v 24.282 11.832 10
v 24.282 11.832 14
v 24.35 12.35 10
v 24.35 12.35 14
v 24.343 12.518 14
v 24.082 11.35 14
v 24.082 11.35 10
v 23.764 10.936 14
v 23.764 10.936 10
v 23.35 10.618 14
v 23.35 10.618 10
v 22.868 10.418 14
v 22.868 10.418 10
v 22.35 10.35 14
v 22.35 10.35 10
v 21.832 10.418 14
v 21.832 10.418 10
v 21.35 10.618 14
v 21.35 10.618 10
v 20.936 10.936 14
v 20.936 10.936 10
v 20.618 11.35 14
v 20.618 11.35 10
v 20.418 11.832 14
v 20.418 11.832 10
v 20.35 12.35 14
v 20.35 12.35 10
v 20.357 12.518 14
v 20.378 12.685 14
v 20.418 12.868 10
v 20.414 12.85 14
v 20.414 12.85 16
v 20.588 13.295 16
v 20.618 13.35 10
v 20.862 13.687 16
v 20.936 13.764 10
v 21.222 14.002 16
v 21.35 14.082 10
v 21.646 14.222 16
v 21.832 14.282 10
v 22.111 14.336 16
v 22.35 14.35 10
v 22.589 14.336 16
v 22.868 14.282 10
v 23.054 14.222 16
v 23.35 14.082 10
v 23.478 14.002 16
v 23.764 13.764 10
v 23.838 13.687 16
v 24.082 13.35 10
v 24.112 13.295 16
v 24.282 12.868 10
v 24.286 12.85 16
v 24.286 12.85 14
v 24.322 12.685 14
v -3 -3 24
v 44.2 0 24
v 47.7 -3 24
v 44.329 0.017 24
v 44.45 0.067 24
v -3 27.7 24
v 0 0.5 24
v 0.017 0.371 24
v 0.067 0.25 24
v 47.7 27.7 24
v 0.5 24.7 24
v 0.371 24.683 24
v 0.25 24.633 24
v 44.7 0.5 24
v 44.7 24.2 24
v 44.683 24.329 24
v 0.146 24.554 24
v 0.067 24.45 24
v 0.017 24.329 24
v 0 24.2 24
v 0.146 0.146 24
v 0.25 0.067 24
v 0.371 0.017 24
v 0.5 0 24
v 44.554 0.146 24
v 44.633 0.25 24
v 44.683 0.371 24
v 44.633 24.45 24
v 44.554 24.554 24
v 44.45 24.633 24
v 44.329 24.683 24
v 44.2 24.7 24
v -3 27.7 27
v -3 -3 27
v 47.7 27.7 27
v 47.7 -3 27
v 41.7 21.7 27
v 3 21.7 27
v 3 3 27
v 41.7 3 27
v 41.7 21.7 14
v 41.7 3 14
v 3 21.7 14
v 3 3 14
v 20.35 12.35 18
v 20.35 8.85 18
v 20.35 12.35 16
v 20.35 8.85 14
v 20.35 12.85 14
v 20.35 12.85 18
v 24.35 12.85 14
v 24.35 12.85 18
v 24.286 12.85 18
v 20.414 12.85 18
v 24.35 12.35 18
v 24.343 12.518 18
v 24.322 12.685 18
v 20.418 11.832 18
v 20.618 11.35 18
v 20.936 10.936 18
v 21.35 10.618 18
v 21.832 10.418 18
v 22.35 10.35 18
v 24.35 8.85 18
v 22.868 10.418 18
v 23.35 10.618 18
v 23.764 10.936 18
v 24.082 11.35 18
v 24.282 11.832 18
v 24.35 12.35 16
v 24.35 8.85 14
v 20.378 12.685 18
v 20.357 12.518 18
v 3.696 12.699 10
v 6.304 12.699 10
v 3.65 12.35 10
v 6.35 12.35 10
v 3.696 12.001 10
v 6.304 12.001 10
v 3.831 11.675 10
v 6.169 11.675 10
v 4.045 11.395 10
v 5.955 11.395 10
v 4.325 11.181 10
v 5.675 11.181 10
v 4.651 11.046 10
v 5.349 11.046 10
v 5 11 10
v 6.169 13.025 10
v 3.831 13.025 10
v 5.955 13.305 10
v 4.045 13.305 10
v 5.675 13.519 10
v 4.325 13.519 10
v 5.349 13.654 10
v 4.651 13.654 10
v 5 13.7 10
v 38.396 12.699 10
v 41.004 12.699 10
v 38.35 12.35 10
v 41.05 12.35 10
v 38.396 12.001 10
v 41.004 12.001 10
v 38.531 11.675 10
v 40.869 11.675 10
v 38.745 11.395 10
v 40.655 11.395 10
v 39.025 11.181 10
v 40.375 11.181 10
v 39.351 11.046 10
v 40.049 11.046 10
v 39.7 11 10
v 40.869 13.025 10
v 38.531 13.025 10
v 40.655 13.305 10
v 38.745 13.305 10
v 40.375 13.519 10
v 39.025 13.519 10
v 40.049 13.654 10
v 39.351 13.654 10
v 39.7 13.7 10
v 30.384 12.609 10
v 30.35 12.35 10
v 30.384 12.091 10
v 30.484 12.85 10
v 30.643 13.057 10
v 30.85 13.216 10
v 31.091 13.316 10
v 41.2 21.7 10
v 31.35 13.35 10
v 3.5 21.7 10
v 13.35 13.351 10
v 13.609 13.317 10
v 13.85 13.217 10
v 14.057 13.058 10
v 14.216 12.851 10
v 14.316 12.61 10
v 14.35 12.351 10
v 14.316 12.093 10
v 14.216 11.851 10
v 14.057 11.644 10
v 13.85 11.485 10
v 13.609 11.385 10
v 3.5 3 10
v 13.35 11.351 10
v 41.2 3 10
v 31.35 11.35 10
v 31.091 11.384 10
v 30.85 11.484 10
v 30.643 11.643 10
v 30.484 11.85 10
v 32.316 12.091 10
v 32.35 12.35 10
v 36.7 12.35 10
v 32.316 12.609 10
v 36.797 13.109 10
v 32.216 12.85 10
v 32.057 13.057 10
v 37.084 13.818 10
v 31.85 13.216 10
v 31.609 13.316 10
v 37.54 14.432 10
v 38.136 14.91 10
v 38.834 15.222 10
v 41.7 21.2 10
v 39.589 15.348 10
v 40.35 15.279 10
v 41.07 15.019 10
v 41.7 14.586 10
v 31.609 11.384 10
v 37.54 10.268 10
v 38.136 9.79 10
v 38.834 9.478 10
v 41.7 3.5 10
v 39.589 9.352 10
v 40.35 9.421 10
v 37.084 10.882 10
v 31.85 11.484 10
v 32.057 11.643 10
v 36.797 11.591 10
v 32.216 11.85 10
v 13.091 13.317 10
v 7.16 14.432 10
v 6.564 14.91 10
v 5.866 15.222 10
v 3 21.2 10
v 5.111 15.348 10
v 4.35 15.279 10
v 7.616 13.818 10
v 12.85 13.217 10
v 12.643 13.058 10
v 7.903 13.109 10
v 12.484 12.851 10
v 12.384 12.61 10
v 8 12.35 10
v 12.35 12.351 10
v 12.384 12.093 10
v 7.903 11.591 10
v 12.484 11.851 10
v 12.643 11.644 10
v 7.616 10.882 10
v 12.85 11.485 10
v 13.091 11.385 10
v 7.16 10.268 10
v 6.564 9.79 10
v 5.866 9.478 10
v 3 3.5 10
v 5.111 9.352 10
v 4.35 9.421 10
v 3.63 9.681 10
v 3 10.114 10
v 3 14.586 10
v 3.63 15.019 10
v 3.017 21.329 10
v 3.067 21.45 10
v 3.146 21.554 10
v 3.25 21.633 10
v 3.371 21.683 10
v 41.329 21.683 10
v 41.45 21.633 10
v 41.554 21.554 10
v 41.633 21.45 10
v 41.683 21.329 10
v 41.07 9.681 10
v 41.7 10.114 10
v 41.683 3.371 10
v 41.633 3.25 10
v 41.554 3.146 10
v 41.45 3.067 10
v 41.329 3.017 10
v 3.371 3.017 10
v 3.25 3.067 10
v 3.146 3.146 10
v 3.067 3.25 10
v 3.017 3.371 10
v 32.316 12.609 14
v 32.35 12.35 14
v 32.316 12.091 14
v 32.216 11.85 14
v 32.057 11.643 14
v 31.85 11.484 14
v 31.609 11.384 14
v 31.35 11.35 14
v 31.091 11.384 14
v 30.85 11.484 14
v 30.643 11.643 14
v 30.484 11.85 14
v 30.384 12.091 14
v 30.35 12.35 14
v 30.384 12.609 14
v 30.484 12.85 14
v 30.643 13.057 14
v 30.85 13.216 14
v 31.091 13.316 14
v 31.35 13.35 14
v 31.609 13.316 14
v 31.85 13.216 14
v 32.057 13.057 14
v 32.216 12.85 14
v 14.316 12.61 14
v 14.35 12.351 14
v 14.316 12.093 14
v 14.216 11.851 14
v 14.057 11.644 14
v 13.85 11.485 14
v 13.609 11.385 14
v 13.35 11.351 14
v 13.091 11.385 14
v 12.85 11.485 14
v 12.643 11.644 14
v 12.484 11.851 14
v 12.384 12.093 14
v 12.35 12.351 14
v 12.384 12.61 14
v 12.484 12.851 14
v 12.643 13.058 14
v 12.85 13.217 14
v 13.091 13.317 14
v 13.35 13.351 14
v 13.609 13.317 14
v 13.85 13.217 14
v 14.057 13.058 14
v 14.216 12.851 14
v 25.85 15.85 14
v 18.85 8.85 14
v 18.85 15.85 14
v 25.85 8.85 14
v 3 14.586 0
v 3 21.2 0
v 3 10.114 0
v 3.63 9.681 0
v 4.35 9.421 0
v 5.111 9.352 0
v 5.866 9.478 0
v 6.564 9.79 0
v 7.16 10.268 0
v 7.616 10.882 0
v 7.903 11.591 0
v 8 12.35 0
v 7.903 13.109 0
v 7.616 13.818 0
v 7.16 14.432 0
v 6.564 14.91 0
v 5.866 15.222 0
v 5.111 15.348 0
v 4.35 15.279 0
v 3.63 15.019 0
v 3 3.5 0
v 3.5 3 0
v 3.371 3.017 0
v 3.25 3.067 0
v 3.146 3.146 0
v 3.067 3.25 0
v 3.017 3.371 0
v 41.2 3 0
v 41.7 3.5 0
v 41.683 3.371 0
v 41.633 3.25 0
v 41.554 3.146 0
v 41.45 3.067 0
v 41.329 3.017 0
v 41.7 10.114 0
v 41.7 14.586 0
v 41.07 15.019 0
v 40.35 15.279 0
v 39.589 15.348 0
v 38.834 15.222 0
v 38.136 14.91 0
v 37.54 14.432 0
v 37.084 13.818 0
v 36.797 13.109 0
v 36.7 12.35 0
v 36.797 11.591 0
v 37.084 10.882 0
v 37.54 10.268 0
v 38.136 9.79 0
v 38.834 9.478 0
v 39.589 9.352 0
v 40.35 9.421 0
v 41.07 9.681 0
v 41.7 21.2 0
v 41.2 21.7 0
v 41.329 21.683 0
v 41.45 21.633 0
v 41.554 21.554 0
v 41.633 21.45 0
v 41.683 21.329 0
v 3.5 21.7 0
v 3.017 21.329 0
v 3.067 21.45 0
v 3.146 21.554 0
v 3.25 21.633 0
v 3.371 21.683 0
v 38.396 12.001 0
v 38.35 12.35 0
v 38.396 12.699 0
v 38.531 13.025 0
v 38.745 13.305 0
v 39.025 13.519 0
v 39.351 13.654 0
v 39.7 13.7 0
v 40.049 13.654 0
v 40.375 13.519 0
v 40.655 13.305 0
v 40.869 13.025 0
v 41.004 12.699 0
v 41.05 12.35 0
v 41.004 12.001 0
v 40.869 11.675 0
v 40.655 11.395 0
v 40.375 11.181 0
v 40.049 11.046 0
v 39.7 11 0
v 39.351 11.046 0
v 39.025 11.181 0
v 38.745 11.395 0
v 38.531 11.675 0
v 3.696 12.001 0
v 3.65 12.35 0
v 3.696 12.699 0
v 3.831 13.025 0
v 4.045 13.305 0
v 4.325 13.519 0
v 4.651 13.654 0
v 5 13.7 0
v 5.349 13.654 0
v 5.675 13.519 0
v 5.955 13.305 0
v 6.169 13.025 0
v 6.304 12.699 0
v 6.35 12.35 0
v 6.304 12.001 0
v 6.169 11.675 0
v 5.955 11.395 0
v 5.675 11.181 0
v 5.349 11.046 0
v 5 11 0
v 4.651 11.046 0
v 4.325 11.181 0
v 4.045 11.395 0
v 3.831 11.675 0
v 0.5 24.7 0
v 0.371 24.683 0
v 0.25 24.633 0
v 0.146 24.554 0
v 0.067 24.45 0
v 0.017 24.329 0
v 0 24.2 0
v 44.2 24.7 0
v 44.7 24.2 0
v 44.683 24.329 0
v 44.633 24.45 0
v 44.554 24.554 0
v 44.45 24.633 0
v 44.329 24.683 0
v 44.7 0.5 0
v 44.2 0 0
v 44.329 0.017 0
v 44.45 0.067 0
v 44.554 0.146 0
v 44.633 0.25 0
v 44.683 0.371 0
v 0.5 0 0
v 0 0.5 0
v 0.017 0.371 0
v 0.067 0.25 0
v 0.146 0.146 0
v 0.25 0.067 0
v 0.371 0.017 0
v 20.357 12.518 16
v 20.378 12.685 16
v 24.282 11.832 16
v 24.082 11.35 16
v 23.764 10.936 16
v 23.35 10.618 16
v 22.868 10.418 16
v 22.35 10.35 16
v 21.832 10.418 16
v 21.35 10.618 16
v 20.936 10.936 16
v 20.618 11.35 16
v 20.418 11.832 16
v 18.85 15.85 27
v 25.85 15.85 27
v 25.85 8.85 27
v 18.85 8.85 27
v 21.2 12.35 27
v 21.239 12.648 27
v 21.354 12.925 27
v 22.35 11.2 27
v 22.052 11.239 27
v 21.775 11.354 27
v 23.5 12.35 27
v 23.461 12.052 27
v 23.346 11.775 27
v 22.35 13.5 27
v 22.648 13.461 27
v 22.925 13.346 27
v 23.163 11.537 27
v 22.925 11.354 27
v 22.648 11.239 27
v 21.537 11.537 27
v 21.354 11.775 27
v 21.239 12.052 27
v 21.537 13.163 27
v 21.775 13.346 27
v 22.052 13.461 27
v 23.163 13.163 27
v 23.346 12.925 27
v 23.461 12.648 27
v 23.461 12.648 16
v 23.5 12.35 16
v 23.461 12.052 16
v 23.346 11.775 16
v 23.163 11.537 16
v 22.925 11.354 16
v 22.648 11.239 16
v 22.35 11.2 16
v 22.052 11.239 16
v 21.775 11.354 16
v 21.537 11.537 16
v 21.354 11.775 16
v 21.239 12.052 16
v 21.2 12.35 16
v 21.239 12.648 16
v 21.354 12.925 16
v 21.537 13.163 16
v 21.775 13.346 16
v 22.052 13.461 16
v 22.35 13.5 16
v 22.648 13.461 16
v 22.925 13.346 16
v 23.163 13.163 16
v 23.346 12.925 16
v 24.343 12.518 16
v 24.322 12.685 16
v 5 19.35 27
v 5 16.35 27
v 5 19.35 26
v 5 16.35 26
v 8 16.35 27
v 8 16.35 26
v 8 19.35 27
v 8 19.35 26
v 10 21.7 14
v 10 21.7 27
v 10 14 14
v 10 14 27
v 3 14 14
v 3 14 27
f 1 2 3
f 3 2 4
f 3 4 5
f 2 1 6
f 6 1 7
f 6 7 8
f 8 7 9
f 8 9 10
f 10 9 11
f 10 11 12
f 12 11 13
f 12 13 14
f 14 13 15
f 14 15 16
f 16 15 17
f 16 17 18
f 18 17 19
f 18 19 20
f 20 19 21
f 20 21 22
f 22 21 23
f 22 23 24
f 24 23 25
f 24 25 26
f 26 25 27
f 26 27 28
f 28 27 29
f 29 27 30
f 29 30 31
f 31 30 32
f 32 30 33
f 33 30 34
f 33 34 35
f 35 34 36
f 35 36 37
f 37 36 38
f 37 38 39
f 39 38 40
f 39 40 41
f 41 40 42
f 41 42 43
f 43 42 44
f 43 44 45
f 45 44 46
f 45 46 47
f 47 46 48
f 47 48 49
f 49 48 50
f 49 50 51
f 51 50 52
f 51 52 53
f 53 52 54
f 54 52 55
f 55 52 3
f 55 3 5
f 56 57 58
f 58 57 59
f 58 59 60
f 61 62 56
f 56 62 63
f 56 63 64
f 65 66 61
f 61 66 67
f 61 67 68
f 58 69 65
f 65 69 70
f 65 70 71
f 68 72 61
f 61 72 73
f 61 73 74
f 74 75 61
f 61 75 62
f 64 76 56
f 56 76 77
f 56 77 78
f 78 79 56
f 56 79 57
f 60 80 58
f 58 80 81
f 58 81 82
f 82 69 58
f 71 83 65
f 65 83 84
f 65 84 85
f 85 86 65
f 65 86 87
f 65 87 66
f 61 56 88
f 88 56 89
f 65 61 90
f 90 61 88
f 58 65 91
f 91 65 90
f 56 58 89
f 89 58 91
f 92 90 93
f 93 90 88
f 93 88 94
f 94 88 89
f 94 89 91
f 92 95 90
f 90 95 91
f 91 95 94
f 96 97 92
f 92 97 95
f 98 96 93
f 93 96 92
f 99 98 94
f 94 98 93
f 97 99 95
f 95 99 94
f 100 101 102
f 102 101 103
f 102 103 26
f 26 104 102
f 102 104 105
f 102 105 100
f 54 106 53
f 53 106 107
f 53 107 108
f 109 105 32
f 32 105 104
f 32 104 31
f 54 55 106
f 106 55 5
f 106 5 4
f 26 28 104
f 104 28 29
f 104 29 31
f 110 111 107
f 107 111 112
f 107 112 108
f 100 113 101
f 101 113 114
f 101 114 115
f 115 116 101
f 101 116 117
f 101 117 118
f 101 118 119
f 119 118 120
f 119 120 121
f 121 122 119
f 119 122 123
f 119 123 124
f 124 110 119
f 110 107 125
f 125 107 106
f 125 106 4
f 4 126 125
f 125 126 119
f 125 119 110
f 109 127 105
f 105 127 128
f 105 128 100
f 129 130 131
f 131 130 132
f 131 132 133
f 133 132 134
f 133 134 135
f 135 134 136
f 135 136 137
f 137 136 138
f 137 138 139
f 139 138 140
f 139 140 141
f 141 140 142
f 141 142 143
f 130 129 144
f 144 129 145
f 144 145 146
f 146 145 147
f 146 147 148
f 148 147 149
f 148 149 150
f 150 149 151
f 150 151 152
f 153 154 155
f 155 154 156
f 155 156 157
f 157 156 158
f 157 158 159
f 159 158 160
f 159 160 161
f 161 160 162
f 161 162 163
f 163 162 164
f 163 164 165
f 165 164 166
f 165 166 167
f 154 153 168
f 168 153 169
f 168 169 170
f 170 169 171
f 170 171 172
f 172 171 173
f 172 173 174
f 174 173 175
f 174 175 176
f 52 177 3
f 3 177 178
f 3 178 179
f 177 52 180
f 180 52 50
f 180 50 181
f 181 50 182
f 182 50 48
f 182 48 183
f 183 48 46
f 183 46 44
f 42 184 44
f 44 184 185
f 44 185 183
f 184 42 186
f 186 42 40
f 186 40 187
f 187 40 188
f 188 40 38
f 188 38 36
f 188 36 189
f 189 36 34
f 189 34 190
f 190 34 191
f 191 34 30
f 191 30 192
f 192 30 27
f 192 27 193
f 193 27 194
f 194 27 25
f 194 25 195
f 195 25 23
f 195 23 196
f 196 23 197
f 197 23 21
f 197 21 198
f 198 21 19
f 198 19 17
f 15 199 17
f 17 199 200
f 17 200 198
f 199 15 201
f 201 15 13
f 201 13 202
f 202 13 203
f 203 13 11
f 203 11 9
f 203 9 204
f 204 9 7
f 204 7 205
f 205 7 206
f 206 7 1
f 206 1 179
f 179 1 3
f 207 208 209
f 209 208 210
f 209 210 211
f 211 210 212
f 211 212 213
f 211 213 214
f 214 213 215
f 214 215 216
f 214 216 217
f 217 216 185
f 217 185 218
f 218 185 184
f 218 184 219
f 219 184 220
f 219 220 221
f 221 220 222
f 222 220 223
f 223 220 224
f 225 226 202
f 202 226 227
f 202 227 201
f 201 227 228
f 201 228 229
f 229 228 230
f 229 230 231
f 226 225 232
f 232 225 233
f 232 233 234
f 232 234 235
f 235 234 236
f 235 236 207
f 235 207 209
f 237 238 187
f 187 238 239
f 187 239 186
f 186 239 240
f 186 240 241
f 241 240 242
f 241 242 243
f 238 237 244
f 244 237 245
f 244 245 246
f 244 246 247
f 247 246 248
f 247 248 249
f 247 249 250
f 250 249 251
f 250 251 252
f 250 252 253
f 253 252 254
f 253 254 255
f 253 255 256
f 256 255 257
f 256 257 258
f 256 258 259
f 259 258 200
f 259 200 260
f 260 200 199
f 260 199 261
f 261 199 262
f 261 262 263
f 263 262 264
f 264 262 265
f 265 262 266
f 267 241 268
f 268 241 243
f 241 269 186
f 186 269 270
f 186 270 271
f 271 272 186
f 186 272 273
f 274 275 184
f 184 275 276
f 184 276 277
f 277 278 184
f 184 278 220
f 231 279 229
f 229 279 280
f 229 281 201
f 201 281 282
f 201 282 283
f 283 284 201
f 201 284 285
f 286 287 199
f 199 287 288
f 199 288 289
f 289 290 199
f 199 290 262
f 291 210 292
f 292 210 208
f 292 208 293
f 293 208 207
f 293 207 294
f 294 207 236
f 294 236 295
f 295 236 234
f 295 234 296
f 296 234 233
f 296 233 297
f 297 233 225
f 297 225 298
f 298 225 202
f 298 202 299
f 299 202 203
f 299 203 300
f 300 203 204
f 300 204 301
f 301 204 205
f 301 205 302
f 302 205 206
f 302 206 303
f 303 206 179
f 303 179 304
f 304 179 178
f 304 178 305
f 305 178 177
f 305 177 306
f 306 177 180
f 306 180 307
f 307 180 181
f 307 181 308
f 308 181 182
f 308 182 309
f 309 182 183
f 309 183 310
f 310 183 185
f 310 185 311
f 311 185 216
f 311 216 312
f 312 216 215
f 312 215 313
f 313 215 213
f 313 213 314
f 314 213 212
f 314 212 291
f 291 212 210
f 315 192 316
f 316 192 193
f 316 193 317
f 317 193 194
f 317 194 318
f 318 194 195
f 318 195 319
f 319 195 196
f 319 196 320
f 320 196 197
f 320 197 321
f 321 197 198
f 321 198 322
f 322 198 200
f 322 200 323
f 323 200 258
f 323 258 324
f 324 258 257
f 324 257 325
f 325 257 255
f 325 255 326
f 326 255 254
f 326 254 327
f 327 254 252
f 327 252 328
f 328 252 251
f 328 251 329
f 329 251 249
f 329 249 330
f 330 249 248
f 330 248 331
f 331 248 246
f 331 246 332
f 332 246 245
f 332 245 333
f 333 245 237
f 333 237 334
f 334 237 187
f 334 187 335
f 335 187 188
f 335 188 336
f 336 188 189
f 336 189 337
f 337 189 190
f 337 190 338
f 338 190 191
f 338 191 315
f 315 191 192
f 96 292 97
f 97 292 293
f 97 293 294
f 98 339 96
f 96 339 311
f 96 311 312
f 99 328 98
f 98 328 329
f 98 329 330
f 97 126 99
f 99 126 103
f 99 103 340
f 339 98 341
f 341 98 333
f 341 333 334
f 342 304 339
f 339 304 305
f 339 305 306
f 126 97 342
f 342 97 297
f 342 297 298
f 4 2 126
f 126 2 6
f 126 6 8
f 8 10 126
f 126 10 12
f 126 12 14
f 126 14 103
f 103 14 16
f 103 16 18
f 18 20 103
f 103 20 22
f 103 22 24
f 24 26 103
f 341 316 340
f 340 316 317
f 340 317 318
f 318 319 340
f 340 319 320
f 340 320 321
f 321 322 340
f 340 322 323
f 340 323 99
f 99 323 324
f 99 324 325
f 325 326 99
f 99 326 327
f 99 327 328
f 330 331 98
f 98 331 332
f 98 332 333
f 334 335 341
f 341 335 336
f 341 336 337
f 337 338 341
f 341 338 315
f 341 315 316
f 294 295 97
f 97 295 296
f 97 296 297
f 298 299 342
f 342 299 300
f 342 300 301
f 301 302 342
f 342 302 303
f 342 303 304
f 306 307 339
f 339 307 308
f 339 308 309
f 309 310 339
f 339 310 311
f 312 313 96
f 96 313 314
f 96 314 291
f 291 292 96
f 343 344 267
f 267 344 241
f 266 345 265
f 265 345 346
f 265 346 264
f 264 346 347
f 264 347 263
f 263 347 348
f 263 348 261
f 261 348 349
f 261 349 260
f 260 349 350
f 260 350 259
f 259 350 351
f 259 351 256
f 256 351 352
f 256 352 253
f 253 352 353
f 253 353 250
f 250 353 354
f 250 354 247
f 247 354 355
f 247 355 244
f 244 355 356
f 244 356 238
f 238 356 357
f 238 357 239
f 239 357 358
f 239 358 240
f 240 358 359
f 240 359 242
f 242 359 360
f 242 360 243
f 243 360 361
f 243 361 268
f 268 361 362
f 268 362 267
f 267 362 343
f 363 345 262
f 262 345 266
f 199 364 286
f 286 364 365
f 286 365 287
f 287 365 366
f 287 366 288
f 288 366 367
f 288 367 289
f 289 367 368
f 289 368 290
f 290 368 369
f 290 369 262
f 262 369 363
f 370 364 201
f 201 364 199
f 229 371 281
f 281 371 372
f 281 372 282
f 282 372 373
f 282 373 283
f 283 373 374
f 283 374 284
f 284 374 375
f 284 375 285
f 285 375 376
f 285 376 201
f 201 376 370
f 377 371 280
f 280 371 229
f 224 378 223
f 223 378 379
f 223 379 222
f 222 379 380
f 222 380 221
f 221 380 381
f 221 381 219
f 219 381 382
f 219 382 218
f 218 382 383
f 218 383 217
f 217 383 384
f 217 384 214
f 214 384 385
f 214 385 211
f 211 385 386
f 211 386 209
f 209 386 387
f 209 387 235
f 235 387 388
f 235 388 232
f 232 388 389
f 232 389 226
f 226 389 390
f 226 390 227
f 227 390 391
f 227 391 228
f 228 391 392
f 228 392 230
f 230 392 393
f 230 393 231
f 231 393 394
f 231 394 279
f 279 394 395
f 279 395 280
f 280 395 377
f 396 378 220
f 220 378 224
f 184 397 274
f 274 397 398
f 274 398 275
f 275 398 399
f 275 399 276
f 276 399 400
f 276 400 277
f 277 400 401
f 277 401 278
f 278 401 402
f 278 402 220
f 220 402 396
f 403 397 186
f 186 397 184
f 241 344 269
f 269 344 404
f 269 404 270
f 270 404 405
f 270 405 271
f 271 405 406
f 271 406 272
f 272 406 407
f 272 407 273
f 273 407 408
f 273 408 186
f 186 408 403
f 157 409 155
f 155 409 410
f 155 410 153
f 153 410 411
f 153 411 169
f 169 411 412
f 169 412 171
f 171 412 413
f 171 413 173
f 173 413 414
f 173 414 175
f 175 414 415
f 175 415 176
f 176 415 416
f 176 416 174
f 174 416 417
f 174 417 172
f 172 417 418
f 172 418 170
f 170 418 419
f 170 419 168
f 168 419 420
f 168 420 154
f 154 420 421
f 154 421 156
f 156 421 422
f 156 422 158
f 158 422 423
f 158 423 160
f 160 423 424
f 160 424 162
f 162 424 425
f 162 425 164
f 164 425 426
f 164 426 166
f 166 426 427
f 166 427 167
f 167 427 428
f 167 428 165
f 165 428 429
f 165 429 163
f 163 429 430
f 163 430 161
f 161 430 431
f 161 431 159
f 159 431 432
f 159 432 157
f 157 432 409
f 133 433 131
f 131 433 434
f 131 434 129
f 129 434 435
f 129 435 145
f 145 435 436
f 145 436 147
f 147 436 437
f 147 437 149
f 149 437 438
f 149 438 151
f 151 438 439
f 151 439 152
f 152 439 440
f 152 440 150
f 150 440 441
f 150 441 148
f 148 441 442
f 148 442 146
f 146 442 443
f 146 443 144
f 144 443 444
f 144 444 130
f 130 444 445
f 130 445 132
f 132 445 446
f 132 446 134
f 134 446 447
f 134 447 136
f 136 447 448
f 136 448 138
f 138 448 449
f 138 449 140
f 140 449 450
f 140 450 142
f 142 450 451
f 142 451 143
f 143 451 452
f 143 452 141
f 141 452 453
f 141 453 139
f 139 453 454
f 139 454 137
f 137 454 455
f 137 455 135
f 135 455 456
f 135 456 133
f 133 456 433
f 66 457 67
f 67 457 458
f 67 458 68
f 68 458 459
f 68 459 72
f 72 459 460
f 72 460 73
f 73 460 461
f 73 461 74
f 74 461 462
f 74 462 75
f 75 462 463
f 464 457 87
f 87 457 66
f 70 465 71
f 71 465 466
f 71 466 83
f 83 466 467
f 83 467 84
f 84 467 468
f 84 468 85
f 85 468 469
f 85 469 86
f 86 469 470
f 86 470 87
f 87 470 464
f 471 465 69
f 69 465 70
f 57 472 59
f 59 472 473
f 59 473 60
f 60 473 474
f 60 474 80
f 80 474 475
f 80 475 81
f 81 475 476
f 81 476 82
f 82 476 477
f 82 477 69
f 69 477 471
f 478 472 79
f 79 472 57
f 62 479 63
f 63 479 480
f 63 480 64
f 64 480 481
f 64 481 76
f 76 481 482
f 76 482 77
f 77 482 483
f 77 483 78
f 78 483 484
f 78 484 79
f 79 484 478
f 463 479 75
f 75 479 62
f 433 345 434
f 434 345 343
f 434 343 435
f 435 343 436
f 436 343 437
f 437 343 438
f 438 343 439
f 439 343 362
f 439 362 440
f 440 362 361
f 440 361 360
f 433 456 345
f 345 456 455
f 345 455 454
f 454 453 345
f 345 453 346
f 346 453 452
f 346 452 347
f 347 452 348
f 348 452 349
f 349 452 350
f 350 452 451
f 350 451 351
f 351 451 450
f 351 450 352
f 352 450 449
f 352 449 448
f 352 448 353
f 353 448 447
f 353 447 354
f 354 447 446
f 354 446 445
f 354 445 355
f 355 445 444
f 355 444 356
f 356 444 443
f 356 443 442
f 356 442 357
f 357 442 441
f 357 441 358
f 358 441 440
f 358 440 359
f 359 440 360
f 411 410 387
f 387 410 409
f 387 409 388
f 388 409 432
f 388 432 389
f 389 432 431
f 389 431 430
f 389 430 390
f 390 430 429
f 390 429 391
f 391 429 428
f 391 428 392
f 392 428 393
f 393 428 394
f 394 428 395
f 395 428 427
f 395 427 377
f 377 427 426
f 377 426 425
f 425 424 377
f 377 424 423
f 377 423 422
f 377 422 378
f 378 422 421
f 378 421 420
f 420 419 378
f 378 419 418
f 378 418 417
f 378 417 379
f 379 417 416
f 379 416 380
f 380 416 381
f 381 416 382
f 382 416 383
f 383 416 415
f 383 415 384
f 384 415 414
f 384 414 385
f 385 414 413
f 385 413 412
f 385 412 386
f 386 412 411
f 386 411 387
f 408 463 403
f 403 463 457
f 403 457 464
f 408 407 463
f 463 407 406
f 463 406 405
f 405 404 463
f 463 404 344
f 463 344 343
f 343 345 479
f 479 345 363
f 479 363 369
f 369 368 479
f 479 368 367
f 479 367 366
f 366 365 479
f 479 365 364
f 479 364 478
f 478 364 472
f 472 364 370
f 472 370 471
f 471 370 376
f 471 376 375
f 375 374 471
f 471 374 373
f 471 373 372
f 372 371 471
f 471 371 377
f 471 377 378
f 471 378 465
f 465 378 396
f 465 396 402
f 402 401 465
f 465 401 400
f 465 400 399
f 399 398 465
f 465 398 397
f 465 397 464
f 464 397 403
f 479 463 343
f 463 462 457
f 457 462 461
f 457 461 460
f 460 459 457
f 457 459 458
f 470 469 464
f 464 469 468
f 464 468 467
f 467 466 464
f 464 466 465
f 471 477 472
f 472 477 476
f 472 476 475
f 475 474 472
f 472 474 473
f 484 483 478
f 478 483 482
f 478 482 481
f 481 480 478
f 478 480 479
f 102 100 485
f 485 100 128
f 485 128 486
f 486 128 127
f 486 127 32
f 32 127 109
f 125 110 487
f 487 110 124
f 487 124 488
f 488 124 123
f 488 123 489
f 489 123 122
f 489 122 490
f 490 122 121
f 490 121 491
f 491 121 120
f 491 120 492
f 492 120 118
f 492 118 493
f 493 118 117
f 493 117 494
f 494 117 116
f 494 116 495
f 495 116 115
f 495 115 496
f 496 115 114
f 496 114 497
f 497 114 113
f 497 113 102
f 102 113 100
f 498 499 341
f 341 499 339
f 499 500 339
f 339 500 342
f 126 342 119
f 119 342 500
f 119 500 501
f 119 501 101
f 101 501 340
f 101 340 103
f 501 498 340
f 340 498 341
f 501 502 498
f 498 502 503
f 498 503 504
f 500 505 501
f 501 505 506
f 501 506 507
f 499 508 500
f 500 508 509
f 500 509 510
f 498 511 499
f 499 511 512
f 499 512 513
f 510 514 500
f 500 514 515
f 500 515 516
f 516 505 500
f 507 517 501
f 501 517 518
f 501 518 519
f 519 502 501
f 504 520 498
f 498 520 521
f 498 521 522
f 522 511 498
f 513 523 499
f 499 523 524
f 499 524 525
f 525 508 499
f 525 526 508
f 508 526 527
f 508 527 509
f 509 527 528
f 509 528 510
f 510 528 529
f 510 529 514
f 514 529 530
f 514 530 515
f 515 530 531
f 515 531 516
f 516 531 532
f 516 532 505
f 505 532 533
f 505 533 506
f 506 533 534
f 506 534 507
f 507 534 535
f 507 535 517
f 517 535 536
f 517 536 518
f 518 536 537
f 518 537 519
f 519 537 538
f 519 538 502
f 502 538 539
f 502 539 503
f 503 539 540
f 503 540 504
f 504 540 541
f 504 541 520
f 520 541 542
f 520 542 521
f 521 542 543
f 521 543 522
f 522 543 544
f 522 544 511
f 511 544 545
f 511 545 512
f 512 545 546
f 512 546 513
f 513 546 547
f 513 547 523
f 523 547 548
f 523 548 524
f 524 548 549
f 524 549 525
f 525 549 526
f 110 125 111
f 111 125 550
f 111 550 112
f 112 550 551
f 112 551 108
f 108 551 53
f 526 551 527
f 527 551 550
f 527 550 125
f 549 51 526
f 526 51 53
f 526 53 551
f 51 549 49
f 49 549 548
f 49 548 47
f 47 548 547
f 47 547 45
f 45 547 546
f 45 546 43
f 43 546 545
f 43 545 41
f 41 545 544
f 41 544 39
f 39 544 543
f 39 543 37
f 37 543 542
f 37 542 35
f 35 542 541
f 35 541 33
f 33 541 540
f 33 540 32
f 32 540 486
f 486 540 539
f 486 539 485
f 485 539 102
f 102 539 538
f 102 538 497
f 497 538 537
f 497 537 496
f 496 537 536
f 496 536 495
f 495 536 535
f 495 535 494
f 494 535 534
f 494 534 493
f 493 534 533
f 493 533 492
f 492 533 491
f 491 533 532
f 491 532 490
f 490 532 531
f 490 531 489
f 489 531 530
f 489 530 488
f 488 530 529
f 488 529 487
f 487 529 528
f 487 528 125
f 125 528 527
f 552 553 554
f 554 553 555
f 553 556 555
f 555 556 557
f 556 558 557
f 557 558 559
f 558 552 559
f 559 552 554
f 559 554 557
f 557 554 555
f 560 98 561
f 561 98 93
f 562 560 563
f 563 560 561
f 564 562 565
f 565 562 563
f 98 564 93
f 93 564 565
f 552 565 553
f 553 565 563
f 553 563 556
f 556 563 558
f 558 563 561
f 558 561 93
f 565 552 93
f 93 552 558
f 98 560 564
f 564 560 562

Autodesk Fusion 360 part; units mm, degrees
sketch "Sketch1" plane through (0, 0, 0) normal (0, 0, 1) x (1, 0, 0)
  line L0 (0.5, 0) -> (44.2, 0)
  line L1 (44.7, 0.5) -> (44.7, 24.2)
  line L2 (44.2, 24.7) -> (0.5, 24.7)
  line L3 (44.7, 24.7) -> (0, 0) construction
  line L4 (0, 24.7) -> (44.7, 0) construction
  arc A0 (0.5, 24.7) -> (0, 24.2) centre (0.5, 24.2) ccw
  arc A1 (0, 0.5) -> (0.5, 0) centre (0.5, 0.5) ccw
  arc A2 (44.2, 0) -> (44.7, 0.5) centre (44.2, 0.5) ccw
  arc A3 (44.7, 24.2) -> (44.2, 24.7) centre (44.2, 24.2) ccw
  line L5 (22.35, 12.35) -> (22.35, 24.7) construction
  line L6 (22.35, 12.35) -> (0, 12.35) construction
  line L7 (22.35, 12.35) -> (22.35, 0) construction
  circle A4 centre (39.7, 12.35) radius 1.35
  circle A5 centre (5, 12.35) radius 1.35
  line L8 (22.35, 24.7) -> (22.35, 21.7) construction
  line L9 (22.35, 0) -> (22.35, 3) construction
  line L10 (0, 12.35) -> (3, 12.35) construction
  line L11 (3.5, 21.7) -> (41.2, 21.7)
  line L12 (41.2, 3) -> (3.5, 3)
  arc A6 (3.5, 21.7) -> (3, 21.2) centre (3.5, 21.2) ccw
  arc A7 (3, 3.5) -> (3.5, 3) centre (3.5, 3.5) ccw
  arc A8 (41.2, 3) -> (41.7, 3.5) centre (41.2, 3.5) ccw
  arc A9 (41.7, 21.2) -> (41.2, 21.7) centre (41.2, 21.2) ccw
  line L13 (0, 24.2) -> (0, 0.5)
  circle A10 centre (5, 12.35) radius 3
  line L14 (3, 21.2) -> (3, 14.5861)
  line L15 (3, 3.5) -> (3, 10.1139)
  circle A11 centre (39.7, 12.35) radius 3
  line L16 (41.7, 3.5) -> (41.7, 10.1139)
  line L17 (41.7, 21.2) -> (41.7, 14.5861)
  point P0 (22.35, 12.35)
  dimension "d1" = 44.7
  dimension "d2" = 24.7
  dimension "d3" = 0.5
  dimension "d4" = 0.5
  dimension "d5" = 0.5
  dimension "d6" = 0.5
  dimension "d8" = 5
  dimension "d9" = 2.7
  dimension "d10" = 2.7
  dimension "d11" = 3
  dimension "d13" = 0.5
  dimension "d14" = 0.5
  dimension "d15" = 0.5
  dimension "d16" = 0.5
  dimension "d17" = 6
  dimension "d18" = 6
extrude "Extrude1" add sketch "Sketch1" along normal blind 10 contours L0 L1 L2 A0 A1 A2 A3 L13 | A10 | A11 makes body 1
sketch "Sketch3" plane through (0, 0, 10) normal (0, 0, 1) x (-1, 0, 0)
  line L0 (0, -24.2) -> (0, -0.5)
  arc A0 (0, -0.5) -> (-0.5, 0) centre (-0.5, -0.5) ccw
  line L1 (-0.5, 0) -> (-44.2, 0)
  arc A1 (-44.2, 0) -> (-44.7, -0.5) centre (-44.2, -0.5) ccw
  line L2 (-44.7, -0.5) -> (-44.7, -24.2)
  arc A2 (-44.7, -24.2) -> (-44.2, -24.7) centre (-44.2, -24.2) ccw
  line L3 (-44.2, -24.7) -> (-0.5, -24.7)
  arc A3 (-0.5, -24.7) -> (0, -24.2) centre (-0.5, -24.2) ccw
  line L4 (-0.5, 0) -> (-44.2, 0)
  line L5 (-44.7, -0.5) -> (-44.7, -24.2)
  line L6 (-44.2, -24.7) -> (-0.5, -24.7)
  line L7 (0, -24.2) -> (0, -0.5)
  arc A4 (-0.5, -24.7) -> (0, -24.2) centre (-0.5, -24.2) ccw
  arc A5 (0, -0.5) -> (-0.5, 0) centre (-0.5, -0.5) ccw
  arc A6 (-44.2, 0) -> (-44.7, -0.5) centre (-44.2, -0.5) ccw
  arc A7 (-44.7, -24.2) -> (-44.2, -24.7) centre (-44.2, -24.2) ccw
  line L8 (-22.35, -24.7) -> (-22.35, 0) construction
  line L9 (-44.7, -12.35) -> (0, -12.35) construction
  circle A8 centre (-22.35, -12.35) radius 2
  line L10 (-24.35, -12.35) -> (-24.35, 0) construction
  line L11 (-20.35, -12.35) -> (-20.35, -24.7) construction
  line L12 (-20.35, -12.35) -> (-20.35, 0) construction
  line L13 (-24.35, -12.35) -> (-36.35, -12.35) construction
  line L14 (-20.35, -12.35) -> (-8.35, -12.35) construction
  line L15 (-36.35, -12.35) -> (-36.35, -24.7) construction
  line L16 (-36.35, -12.35) -> (-36.35, 0) construction
  line L17 (-8.35, -12.35) -> (-8.35, -24.7) construction
  line L18 (-8.35, -12.35) -> (-8.35, 0) construction
  line L19 (-36.35, -12.35) -> (-36.35, -17.35) construction
  line L20 (-36.35, -12.35) -> (-36.35, -7.35) construction
  line L21 (-36.35, -7.35) -> (-26.35, -7.35) construction
  line L22 (-26.35, -17.35) -> (-36.35, -17.35) construction
  line L23 (-8.35, -7.35) -> (-8.35, -17.3527) construction
  line L24 (-24.35, -12.35) -> (-24.35, -24.7) construction
  line L25 (-24.35, -12.35) -> (-26.35, -12.35)
  line L26 (-26.35, -12.35) -> (-26.35, -17.35) construction
  line L27 (-26.35, -12.35) -> (-26.35, -7.35) construction
  line L28 (-20.35, -12.35) -> (-18.35, -12.35)
  line L29 (-18.35, -12.35) -> (-18.35, -17.3527) construction
  line L30 (-18.35, -17.3527) -> (-8.35, -17.3527) construction
  line L31 (-8.35, -7.35) -> (-18.35, -7.35) construction
  line L32 (-18.35, -7.35) -> (-18.35, -12.35) construction
  line L33 (-36.35, -17.35) -> (-26.35, -7.35) construction
  line L34 (-26.35, -17.35) -> (-36.35, -7.35) construction
  line L35 (-8.35, -17.3527) -> (-18.35, -7.35) construction
  line L36 (-18.35, -17.3527) -> (-8.35, -7.35) construction
  circle A9 centre (-13.35, -12.3513) radius 1
  circle A10 centre (-31.35, -12.35) radius 1
  point P0 (-44.7, 0)
  point P1 (-44.7, -24.7)
  dimension "d21" = 24.7
  dimension "d22" = 0.5
  dimension "d23" = 0.5
  dimension "d24" = 0.5
  dimension "d25" = 0.5
  dimension "d26" = 4
  dimension "d36" = 2
  dimension "d37" = 2
extrude "Extrude2" add sketch "Sketch3" along normal blind 4 bodies 1
sketch "Sketch5" plane through (0, 0, 14) normal (0, 0, 1) x (-1, 0, 0)
  circle A0 centre (-13.35, -12.3513) radius 1
  circle A1 centre (-31.35, -12.35) radius 1
  circle A2 centre (-22.35, -12.35) radius 2
  arc A3 (-44.7, -24.2) -> (-44.2, -24.7) centre (-44.2, -24.2) ccw
  line L0 (-44.2, -24.7) -> (-0.5, -24.7)
  arc A4 (-0.5, -24.7) -> (0, -24.2) centre (-0.5, -24.2) ccw
  line L1 (0, -24.2) -> (0, -0.5)
  arc A5 (0, -0.5) -> (-0.5, 0) centre (-0.5, -0.5) ccw
  line L2 (-0.5, 0) -> (-44.2, 0)
  arc A6 (-44.2, 0) -> (-44.7, -0.5) centre (-44.2, -0.5) ccw
  line L3 (-44.7, -0.5) -> (-44.7, -24.2)
  line L4 (0, 0) -> (0, -24.7)
  line L5 (0, -24.7) -> (-44.7, -24.7)
  line L6 (-44.7, -24.7) -> (-44.7, 0)
  line L7 (-44.7, 0) -> (0, 0)
  line L8 (-3, -21.7) -> (-41.7, -21.7)
  line L9 (-41.7, -21.7) -> (-41.7, -3)
  line L10 (-41.7, -3) -> (-3, -3)
  line L11 (-3, -3) -> (-3, -21.7)
  line L12 (-18.85, -12.35) -> (-18.85, -15.85)
  line L13 (-18.85, -15.85) -> (-22.35, -15.85)
  line L14 (-25.85, -15.85) -> (-22.35, -15.85)
  line L15 (-18.85, -12.35) -> (-18.85, -8.85)
  line L16 (-18.85, -8.85) -> (-22.35, -8.85)
  line L17 (-25.85, -8.85) -> (-22.35, -8.85)
  line L18 (-25.85, -15.85) -> (-25.85, -8.85)
  point P0 (-3, -21.7)
  point P1 (-3, -3)
  point P2 (-41.7, -21.7)
  point P3 (-41.7, -3)
  dimension "d40" = 44.7
extrude "Extrude3" add sketch "Sketch5" along normal blind 10 contours L12 L13 L14 L15 L16 L17 L18 bodies 1
sketch "Sketch10" plane through (0, 8.85, 0) normal (0, -1, 0) x (1, 0, 0)
  line L0 (18.85, 14) -> (25.85, 14)
  line L1 (25.85, 14) -> (25.85, 24)
  line L2 (25.85, 24) -> (18.85, 24)
  line L3 (18.85, 24) -> (18.85, 14)
  line L4 (22.35, 18) -> (24.35, 18)
  line L5 (24.35, 18) -> (24.35, 14)
  line L6 (22.35, 14) -> (24.35, 14)
  line L7 (22.35, 14) -> (20.35, 14)
  line L8 (20.35, 14) -> (20.35, 18)
  line L9 (20.35, 18) -> (22.35, 18)
extrude "Extrude4" cut sketch "Sketch10" against normal blind 4 contours L0 L4 L5 L6 L7 L8 L9 bodies 1
sketch "Sketch11" plane through (0, 0, 24) normal (0, 0, 1) x (-1, 0, 0)
  circle A0 centre (-22.35, -12.35) radius 2
  line L0 (-18.85, -15.85) -> (-18.85, -8.85)
  line L1 (-18.85, -8.85) -> (-25.85, -8.85)
  line L2 (-25.85, -8.85) -> (-25.85, -15.85)
  line L3 (-25.85, -15.85) -> (-18.85, -15.85)
  line L4 (-18.85, -15.85) -> (-25.85, -8.85) construction
  line L5 (-25.85, -15.85) -> (-18.85, -8.85) construction
  circle A1 centre (-22.35, -12.35) radius 1.15
  dimension "d58" = 2.3
extrude "Extrude5" add sketch "Sketch11" against normal blind 8 separate body contours A0 makes body 2
sketch "Sketch12" plane through (0, 0, 14) normal (0, 0, 1) x (-1, 0, 0)
  line L0 (-18.85, -15.85) -> (-25.85, -15.85)
  line L1 (-25.85, -15.85) -> (-25.85, -8.85)
  line L2 (-25.85, -8.85) -> (-24.35, -8.85)
  line L3 (-24.35, -8.85) -> (-24.35, -12.35)
  arc A0 (-20.35, -12.35) -> (-24.35, -12.35) centre (-22.35, -12.35) ccw
  line L4 (-20.35, -12.35) -> (-20.35, -8.85)
  line L5 (-20.35, -8.85) -> (-18.85, -8.85)
  line L6 (-18.85, -8.85) -> (-18.85, -15.85)
  circle A1 centre (-13.35, -12.3513) radius 1
  circle A2 centre (-31.35, -12.35) radius 1
  arc A3 (-44.7, -24.2) -> (-44.2, -24.7) centre (-44.2, -24.2) ccw
  line L7 (-44.2, -24.7) -> (-0.5, -24.7)
  arc A4 (-0.5, -24.7) -> (0, -24.2) centre (-0.5, -24.2) ccw
  line L8 (0, -24.2) -> (0, -0.5)
  arc A5 (0, -0.5) -> (-0.5, 0) centre (-0.5, -0.5) ccw
  line L9 (-0.5, 0) -> (-44.2, 0)
  arc A6 (-44.2, 0) -> (-44.7, -0.5) centre (-44.2, -0.5) ccw
  line L10 (-44.7, -0.5) -> (-44.7, -24.2)
  line L11 (-3, -21.7) -> (-41.7, -21.7)
  line L12 (-41.7, -21.7) -> (-41.7, -3)
  line L13 (-41.7, -3) -> (-3, -3)
  line L14 (-3, -3) -> (-3, -21.7)
  point P0 (-3, -21.7)
  point P1 (-41.7, -21.7)
  point P2 (-41.7, -3)
  point P3 (-3, -3)
extrude "Extrude6" add sketch "Sketch12" along normal blind 10 contours A3 L7 A4 L8 A5 L9 A6 L10 bodies 1
sketch "Sketch14" plane through (0, 0, 24) normal (0, 0, 1) x (-1, 0, 0)
  line L0 (-41.7, -3) -> (-3, -3)
  line L1 (-3, -3) -> (-3, -21.7)
  line L2 (-3, -21.7) -> (-41.7, -21.7)
  line L3 (-41.7, -21.7) -> (-41.7, -3)
  line L4 (-44.7, -0.5) -> (-44.7, -24.2)
  arc A0 (-44.7, -24.2) -> (-44.2, -24.7) centre (-44.2, -24.2) ccw
  line L5 (-44.2, -24.7) -> (-0.5, -24.7)
  arc A1 (-0.5, -24.7) -> (0, -24.2) centre (-0.5, -24.2) ccw
  line L6 (0, -24.2) -> (0, -0.5)
  arc A2 (0, -0.5) -> (-0.5, 0) centre (-0.5, -0.5) ccw
  line L7 (-0.5, 0) -> (-44.2, 0)
  arc A3 (-44.2, 0) -> (-44.7, -0.5) centre (-44.2, -0.5) ccw
  line L8 (3, -27.7) -> (-47.7, -27.7)
  line L9 (-47.7, -27.7) -> (-47.7, 3)
  line L10 (-47.7, 3) -> (3, 3)
  line L11 (3, 3) -> (3, -27.7)
  point P0 (3, -27.7)
  point P1 (3, 3)
  point P2 (-47.7, 3)
  point P3 (-47.7, -27.7)
extrude "Extrude7" add sketch "Sketch14" along normal blind 3 contours L4 A0 L5 A1 L6 A2 L7 A3 | L8 L9 L10 L11 bodies 1
extrude "Extrude8" add 2 faces at (20.6408, 12.4494, 24) (22.3998, 15.3481, 24) along direction (0, 0, 1) blind 3 on bodies 1 2 bodies 2 1
sketch "Sketch15" plane through (0, 0, 14) normal (0, 0, 1) x (-1, 0, 0)
  line L0 (-41.7, -3) -> (-41.7, -21.7)
  line L1 (-41.7, -21.7) -> (-3, -21.7)
  line L2 (-3, -21.7) -> (-3, -3)
  line L3 (-3, -3) -> (-41.7, -3)
  line L4 (-18.85, -15.85) -> (-25.85, -15.85)
  line L5 (-25.85, -15.85) -> (-25.85, -8.85)
  line L6 (-25.85, -8.85) -> (-24.35, -8.85)
  line L7 (-24.35, -8.85) -> (-24.35, -12.35)
  arc A0 (-20.35, -12.35) -> (-24.35, -12.35) centre (-22.35, -12.35) ccw
  line L8 (-20.35, -12.35) -> (-20.35, -8.85)
  line L9 (-20.35, -8.85) -> (-18.85, -8.85)
  line L10 (-18.85, -8.85) -> (-18.85, -15.85)
  circle A1 centre (-13.35, -12.3513) radius 1
  circle A2 centre (-31.35, -12.35) radius 1
  line L11 (-3, -21.7) -> (-10, -21.7)
  line L12 (-10, -21.7) -> (-10, -14)
  line L13 (-10, -14) -> (-3, -14)
extrude "Extrude9" add sketch "Sketch15" along normal blind 13 separate body contours L1 L2 L11 L12 L13 makes body 3
sketch "Sketch16" plane through (0, 0, 27) normal (0, 0, 1) x (-1, 0, 0)
  line L0 (-3, -21.7) -> (-3, -14)
  line L1 (-3, -14) -> (-10, -14)
  line L2 (-10, -14) -> (-10, -21.7)
  line L3 (-10, -21.7) -> (-3, -21.7)
  line L4 (-6.5, -19.35) -> (-8, -19.35)
  line L5 (-8, -19.35) -> (-8, -16.35)
  line L6 (-8, -16.35) -> (-5, -16.35)
  line L7 (-6.5, -19.35) -> (-5, -19.35)
  line L8 (-5, -19.35) -> (-5, -16.35)
extrude "Extrude10" cut sketch "Sketch16" against normal blind 1 contours L4 L5 L6 L7 L8 bodies 3
